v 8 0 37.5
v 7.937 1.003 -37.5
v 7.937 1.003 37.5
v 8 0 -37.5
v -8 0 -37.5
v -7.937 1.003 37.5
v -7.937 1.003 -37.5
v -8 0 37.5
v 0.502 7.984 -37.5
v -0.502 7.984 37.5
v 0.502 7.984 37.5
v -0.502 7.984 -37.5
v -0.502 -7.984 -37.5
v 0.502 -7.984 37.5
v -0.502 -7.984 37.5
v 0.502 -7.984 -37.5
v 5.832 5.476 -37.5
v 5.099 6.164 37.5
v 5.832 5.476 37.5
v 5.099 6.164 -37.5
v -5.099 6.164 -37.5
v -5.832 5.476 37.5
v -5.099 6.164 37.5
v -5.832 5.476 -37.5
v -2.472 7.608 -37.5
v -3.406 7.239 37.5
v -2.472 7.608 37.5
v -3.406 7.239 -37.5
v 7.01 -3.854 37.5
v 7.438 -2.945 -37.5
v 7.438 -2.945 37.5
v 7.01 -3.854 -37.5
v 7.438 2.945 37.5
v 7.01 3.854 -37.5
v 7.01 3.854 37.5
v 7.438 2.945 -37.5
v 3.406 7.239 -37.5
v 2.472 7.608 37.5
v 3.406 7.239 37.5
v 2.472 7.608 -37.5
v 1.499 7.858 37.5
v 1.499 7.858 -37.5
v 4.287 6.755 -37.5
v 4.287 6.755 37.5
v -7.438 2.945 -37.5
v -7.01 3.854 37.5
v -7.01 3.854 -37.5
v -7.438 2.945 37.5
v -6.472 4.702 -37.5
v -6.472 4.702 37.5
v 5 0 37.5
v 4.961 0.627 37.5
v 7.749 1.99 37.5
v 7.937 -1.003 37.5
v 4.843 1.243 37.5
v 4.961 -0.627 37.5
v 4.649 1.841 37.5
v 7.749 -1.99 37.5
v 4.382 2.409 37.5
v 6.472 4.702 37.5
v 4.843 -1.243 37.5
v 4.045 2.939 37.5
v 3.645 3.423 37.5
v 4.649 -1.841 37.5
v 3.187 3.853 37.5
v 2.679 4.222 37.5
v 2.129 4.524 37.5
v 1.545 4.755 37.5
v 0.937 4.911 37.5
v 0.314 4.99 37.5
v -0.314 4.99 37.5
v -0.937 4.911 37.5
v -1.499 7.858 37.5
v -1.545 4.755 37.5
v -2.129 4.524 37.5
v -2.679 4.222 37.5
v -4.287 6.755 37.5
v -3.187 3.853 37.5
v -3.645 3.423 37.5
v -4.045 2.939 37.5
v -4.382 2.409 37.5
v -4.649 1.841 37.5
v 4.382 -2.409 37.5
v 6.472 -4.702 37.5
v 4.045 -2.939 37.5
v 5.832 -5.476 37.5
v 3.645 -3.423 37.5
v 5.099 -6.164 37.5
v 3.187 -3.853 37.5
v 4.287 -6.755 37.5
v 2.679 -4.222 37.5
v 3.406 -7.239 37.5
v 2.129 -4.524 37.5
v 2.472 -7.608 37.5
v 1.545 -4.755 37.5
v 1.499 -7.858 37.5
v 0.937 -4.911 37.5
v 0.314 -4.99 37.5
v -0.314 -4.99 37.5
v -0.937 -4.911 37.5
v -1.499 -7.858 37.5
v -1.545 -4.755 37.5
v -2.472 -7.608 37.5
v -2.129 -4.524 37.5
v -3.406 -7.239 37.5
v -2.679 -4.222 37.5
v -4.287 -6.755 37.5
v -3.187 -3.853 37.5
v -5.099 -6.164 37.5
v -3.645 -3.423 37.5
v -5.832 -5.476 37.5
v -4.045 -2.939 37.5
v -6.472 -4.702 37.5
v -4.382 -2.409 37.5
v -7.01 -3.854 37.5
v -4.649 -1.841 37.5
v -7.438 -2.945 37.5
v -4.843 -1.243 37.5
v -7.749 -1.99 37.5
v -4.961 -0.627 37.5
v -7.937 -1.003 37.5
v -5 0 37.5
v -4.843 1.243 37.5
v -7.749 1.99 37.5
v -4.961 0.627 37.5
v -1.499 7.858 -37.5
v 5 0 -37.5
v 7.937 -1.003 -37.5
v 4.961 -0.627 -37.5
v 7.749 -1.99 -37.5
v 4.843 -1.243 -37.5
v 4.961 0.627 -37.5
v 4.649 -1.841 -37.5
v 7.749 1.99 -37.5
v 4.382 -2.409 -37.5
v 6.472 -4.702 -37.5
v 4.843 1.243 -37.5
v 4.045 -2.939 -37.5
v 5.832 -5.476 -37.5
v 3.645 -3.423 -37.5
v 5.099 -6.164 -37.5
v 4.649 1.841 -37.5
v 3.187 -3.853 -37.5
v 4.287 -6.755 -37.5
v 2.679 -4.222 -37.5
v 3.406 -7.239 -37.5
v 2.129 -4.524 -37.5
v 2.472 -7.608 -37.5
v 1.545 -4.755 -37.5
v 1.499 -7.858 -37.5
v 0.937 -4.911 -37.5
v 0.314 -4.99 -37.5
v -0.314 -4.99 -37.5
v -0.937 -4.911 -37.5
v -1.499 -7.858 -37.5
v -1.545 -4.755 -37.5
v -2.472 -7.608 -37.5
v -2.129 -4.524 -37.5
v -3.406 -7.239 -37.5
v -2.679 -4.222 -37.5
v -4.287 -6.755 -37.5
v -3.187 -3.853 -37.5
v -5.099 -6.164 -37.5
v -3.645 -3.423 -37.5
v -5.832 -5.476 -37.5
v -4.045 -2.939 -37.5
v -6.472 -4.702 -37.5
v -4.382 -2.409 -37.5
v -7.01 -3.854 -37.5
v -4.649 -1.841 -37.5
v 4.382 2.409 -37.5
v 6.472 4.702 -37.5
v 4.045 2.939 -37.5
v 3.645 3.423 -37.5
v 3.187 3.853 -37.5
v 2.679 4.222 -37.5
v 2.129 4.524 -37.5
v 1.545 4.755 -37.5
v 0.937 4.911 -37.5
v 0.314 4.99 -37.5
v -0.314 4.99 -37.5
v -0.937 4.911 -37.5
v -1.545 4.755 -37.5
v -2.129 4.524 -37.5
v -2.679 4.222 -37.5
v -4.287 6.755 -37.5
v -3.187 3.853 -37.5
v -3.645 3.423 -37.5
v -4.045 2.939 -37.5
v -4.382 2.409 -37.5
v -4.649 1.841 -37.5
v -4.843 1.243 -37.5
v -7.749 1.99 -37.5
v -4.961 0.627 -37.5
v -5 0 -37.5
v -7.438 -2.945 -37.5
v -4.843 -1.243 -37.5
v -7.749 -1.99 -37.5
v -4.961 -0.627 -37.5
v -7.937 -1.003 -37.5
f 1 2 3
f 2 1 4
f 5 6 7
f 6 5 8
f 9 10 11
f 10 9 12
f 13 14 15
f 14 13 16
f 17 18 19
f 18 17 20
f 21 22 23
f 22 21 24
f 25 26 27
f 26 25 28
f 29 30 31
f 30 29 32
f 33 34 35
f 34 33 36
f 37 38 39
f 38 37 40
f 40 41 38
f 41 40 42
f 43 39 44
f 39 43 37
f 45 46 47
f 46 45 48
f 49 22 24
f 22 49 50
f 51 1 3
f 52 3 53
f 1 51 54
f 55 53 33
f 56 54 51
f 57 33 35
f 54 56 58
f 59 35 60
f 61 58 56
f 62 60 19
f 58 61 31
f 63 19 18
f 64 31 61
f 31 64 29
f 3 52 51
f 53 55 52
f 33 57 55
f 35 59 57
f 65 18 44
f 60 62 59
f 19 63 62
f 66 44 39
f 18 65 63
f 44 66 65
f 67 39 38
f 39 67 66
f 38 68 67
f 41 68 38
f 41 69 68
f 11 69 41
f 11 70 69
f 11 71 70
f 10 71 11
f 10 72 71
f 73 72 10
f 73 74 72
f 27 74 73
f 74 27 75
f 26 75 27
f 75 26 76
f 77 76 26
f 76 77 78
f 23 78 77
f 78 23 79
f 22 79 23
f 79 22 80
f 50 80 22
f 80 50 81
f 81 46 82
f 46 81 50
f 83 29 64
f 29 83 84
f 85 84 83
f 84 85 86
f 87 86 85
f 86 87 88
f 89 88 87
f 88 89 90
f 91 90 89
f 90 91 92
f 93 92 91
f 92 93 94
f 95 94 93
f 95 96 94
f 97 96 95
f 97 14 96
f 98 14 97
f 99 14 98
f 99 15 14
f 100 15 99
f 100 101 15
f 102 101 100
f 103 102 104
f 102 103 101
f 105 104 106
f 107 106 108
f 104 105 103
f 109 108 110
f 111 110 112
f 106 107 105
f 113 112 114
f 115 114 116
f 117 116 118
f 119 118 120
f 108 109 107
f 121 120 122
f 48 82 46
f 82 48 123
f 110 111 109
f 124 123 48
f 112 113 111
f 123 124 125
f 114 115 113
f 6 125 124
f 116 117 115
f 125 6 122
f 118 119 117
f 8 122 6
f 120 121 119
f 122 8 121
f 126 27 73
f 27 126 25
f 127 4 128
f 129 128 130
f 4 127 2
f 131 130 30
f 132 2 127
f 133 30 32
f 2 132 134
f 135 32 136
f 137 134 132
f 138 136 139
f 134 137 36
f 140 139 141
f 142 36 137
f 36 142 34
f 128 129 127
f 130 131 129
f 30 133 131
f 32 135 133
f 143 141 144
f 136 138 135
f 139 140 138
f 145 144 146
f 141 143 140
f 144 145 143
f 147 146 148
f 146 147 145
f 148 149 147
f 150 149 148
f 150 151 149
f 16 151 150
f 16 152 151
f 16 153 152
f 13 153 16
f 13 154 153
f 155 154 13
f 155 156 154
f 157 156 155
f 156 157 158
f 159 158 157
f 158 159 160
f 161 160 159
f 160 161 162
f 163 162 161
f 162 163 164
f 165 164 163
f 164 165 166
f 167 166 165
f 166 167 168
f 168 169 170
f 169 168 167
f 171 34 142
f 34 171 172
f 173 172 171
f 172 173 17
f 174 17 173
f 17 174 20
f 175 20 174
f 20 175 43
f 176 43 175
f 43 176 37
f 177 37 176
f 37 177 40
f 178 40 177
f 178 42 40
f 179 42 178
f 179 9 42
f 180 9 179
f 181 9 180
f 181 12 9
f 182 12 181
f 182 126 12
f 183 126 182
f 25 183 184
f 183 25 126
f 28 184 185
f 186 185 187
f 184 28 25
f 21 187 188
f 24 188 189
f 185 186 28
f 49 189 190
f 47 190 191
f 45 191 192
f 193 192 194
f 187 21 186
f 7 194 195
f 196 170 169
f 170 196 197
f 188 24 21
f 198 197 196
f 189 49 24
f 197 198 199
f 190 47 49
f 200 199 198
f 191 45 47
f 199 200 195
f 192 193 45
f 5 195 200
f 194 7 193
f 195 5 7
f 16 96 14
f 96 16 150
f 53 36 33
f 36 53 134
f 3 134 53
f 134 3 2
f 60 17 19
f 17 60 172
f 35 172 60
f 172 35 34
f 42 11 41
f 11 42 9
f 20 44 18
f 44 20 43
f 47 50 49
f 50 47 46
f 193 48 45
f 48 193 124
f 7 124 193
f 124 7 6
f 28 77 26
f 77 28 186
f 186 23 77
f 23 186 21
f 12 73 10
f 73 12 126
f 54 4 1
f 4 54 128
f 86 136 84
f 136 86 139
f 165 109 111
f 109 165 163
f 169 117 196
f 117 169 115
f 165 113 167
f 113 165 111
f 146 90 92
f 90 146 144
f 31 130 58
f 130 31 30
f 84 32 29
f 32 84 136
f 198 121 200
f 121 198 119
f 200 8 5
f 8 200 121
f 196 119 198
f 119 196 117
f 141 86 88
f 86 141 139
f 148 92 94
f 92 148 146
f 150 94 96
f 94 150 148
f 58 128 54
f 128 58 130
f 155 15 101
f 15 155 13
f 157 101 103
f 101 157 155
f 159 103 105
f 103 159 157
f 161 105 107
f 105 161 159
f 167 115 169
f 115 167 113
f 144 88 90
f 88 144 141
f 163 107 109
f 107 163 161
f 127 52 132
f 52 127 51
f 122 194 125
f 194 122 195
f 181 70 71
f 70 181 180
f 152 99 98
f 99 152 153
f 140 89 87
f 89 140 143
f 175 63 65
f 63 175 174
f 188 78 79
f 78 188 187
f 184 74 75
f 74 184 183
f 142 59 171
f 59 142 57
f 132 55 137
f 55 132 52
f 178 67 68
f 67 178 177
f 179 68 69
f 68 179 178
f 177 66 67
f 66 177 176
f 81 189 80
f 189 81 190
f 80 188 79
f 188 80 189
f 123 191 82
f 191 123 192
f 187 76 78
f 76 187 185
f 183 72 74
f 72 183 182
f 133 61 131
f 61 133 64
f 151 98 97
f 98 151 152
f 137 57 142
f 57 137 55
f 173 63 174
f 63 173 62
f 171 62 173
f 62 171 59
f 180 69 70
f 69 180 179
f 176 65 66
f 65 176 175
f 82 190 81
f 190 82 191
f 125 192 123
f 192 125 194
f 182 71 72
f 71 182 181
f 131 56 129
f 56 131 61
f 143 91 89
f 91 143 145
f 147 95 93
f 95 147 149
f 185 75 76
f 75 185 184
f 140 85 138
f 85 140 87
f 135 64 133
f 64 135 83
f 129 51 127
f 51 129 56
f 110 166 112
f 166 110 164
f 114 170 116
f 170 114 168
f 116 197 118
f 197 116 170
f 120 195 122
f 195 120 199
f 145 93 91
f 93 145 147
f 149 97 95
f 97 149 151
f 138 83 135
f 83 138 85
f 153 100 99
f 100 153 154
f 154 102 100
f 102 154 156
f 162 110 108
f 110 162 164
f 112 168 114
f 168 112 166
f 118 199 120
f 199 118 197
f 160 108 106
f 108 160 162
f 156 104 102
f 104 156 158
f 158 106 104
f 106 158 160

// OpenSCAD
$fn = 50;


difference() {
	union() {
		translate(v = [0, 0, -37.5000000000]) {
			cylinder(h = 75, r = 8.0000000000);
		}
	}
	union() {
		translate(v = [0, 0, -100.0000000000]) {
			cylinder(h = 200, r = 5.0000000000);
		}
	}
}
